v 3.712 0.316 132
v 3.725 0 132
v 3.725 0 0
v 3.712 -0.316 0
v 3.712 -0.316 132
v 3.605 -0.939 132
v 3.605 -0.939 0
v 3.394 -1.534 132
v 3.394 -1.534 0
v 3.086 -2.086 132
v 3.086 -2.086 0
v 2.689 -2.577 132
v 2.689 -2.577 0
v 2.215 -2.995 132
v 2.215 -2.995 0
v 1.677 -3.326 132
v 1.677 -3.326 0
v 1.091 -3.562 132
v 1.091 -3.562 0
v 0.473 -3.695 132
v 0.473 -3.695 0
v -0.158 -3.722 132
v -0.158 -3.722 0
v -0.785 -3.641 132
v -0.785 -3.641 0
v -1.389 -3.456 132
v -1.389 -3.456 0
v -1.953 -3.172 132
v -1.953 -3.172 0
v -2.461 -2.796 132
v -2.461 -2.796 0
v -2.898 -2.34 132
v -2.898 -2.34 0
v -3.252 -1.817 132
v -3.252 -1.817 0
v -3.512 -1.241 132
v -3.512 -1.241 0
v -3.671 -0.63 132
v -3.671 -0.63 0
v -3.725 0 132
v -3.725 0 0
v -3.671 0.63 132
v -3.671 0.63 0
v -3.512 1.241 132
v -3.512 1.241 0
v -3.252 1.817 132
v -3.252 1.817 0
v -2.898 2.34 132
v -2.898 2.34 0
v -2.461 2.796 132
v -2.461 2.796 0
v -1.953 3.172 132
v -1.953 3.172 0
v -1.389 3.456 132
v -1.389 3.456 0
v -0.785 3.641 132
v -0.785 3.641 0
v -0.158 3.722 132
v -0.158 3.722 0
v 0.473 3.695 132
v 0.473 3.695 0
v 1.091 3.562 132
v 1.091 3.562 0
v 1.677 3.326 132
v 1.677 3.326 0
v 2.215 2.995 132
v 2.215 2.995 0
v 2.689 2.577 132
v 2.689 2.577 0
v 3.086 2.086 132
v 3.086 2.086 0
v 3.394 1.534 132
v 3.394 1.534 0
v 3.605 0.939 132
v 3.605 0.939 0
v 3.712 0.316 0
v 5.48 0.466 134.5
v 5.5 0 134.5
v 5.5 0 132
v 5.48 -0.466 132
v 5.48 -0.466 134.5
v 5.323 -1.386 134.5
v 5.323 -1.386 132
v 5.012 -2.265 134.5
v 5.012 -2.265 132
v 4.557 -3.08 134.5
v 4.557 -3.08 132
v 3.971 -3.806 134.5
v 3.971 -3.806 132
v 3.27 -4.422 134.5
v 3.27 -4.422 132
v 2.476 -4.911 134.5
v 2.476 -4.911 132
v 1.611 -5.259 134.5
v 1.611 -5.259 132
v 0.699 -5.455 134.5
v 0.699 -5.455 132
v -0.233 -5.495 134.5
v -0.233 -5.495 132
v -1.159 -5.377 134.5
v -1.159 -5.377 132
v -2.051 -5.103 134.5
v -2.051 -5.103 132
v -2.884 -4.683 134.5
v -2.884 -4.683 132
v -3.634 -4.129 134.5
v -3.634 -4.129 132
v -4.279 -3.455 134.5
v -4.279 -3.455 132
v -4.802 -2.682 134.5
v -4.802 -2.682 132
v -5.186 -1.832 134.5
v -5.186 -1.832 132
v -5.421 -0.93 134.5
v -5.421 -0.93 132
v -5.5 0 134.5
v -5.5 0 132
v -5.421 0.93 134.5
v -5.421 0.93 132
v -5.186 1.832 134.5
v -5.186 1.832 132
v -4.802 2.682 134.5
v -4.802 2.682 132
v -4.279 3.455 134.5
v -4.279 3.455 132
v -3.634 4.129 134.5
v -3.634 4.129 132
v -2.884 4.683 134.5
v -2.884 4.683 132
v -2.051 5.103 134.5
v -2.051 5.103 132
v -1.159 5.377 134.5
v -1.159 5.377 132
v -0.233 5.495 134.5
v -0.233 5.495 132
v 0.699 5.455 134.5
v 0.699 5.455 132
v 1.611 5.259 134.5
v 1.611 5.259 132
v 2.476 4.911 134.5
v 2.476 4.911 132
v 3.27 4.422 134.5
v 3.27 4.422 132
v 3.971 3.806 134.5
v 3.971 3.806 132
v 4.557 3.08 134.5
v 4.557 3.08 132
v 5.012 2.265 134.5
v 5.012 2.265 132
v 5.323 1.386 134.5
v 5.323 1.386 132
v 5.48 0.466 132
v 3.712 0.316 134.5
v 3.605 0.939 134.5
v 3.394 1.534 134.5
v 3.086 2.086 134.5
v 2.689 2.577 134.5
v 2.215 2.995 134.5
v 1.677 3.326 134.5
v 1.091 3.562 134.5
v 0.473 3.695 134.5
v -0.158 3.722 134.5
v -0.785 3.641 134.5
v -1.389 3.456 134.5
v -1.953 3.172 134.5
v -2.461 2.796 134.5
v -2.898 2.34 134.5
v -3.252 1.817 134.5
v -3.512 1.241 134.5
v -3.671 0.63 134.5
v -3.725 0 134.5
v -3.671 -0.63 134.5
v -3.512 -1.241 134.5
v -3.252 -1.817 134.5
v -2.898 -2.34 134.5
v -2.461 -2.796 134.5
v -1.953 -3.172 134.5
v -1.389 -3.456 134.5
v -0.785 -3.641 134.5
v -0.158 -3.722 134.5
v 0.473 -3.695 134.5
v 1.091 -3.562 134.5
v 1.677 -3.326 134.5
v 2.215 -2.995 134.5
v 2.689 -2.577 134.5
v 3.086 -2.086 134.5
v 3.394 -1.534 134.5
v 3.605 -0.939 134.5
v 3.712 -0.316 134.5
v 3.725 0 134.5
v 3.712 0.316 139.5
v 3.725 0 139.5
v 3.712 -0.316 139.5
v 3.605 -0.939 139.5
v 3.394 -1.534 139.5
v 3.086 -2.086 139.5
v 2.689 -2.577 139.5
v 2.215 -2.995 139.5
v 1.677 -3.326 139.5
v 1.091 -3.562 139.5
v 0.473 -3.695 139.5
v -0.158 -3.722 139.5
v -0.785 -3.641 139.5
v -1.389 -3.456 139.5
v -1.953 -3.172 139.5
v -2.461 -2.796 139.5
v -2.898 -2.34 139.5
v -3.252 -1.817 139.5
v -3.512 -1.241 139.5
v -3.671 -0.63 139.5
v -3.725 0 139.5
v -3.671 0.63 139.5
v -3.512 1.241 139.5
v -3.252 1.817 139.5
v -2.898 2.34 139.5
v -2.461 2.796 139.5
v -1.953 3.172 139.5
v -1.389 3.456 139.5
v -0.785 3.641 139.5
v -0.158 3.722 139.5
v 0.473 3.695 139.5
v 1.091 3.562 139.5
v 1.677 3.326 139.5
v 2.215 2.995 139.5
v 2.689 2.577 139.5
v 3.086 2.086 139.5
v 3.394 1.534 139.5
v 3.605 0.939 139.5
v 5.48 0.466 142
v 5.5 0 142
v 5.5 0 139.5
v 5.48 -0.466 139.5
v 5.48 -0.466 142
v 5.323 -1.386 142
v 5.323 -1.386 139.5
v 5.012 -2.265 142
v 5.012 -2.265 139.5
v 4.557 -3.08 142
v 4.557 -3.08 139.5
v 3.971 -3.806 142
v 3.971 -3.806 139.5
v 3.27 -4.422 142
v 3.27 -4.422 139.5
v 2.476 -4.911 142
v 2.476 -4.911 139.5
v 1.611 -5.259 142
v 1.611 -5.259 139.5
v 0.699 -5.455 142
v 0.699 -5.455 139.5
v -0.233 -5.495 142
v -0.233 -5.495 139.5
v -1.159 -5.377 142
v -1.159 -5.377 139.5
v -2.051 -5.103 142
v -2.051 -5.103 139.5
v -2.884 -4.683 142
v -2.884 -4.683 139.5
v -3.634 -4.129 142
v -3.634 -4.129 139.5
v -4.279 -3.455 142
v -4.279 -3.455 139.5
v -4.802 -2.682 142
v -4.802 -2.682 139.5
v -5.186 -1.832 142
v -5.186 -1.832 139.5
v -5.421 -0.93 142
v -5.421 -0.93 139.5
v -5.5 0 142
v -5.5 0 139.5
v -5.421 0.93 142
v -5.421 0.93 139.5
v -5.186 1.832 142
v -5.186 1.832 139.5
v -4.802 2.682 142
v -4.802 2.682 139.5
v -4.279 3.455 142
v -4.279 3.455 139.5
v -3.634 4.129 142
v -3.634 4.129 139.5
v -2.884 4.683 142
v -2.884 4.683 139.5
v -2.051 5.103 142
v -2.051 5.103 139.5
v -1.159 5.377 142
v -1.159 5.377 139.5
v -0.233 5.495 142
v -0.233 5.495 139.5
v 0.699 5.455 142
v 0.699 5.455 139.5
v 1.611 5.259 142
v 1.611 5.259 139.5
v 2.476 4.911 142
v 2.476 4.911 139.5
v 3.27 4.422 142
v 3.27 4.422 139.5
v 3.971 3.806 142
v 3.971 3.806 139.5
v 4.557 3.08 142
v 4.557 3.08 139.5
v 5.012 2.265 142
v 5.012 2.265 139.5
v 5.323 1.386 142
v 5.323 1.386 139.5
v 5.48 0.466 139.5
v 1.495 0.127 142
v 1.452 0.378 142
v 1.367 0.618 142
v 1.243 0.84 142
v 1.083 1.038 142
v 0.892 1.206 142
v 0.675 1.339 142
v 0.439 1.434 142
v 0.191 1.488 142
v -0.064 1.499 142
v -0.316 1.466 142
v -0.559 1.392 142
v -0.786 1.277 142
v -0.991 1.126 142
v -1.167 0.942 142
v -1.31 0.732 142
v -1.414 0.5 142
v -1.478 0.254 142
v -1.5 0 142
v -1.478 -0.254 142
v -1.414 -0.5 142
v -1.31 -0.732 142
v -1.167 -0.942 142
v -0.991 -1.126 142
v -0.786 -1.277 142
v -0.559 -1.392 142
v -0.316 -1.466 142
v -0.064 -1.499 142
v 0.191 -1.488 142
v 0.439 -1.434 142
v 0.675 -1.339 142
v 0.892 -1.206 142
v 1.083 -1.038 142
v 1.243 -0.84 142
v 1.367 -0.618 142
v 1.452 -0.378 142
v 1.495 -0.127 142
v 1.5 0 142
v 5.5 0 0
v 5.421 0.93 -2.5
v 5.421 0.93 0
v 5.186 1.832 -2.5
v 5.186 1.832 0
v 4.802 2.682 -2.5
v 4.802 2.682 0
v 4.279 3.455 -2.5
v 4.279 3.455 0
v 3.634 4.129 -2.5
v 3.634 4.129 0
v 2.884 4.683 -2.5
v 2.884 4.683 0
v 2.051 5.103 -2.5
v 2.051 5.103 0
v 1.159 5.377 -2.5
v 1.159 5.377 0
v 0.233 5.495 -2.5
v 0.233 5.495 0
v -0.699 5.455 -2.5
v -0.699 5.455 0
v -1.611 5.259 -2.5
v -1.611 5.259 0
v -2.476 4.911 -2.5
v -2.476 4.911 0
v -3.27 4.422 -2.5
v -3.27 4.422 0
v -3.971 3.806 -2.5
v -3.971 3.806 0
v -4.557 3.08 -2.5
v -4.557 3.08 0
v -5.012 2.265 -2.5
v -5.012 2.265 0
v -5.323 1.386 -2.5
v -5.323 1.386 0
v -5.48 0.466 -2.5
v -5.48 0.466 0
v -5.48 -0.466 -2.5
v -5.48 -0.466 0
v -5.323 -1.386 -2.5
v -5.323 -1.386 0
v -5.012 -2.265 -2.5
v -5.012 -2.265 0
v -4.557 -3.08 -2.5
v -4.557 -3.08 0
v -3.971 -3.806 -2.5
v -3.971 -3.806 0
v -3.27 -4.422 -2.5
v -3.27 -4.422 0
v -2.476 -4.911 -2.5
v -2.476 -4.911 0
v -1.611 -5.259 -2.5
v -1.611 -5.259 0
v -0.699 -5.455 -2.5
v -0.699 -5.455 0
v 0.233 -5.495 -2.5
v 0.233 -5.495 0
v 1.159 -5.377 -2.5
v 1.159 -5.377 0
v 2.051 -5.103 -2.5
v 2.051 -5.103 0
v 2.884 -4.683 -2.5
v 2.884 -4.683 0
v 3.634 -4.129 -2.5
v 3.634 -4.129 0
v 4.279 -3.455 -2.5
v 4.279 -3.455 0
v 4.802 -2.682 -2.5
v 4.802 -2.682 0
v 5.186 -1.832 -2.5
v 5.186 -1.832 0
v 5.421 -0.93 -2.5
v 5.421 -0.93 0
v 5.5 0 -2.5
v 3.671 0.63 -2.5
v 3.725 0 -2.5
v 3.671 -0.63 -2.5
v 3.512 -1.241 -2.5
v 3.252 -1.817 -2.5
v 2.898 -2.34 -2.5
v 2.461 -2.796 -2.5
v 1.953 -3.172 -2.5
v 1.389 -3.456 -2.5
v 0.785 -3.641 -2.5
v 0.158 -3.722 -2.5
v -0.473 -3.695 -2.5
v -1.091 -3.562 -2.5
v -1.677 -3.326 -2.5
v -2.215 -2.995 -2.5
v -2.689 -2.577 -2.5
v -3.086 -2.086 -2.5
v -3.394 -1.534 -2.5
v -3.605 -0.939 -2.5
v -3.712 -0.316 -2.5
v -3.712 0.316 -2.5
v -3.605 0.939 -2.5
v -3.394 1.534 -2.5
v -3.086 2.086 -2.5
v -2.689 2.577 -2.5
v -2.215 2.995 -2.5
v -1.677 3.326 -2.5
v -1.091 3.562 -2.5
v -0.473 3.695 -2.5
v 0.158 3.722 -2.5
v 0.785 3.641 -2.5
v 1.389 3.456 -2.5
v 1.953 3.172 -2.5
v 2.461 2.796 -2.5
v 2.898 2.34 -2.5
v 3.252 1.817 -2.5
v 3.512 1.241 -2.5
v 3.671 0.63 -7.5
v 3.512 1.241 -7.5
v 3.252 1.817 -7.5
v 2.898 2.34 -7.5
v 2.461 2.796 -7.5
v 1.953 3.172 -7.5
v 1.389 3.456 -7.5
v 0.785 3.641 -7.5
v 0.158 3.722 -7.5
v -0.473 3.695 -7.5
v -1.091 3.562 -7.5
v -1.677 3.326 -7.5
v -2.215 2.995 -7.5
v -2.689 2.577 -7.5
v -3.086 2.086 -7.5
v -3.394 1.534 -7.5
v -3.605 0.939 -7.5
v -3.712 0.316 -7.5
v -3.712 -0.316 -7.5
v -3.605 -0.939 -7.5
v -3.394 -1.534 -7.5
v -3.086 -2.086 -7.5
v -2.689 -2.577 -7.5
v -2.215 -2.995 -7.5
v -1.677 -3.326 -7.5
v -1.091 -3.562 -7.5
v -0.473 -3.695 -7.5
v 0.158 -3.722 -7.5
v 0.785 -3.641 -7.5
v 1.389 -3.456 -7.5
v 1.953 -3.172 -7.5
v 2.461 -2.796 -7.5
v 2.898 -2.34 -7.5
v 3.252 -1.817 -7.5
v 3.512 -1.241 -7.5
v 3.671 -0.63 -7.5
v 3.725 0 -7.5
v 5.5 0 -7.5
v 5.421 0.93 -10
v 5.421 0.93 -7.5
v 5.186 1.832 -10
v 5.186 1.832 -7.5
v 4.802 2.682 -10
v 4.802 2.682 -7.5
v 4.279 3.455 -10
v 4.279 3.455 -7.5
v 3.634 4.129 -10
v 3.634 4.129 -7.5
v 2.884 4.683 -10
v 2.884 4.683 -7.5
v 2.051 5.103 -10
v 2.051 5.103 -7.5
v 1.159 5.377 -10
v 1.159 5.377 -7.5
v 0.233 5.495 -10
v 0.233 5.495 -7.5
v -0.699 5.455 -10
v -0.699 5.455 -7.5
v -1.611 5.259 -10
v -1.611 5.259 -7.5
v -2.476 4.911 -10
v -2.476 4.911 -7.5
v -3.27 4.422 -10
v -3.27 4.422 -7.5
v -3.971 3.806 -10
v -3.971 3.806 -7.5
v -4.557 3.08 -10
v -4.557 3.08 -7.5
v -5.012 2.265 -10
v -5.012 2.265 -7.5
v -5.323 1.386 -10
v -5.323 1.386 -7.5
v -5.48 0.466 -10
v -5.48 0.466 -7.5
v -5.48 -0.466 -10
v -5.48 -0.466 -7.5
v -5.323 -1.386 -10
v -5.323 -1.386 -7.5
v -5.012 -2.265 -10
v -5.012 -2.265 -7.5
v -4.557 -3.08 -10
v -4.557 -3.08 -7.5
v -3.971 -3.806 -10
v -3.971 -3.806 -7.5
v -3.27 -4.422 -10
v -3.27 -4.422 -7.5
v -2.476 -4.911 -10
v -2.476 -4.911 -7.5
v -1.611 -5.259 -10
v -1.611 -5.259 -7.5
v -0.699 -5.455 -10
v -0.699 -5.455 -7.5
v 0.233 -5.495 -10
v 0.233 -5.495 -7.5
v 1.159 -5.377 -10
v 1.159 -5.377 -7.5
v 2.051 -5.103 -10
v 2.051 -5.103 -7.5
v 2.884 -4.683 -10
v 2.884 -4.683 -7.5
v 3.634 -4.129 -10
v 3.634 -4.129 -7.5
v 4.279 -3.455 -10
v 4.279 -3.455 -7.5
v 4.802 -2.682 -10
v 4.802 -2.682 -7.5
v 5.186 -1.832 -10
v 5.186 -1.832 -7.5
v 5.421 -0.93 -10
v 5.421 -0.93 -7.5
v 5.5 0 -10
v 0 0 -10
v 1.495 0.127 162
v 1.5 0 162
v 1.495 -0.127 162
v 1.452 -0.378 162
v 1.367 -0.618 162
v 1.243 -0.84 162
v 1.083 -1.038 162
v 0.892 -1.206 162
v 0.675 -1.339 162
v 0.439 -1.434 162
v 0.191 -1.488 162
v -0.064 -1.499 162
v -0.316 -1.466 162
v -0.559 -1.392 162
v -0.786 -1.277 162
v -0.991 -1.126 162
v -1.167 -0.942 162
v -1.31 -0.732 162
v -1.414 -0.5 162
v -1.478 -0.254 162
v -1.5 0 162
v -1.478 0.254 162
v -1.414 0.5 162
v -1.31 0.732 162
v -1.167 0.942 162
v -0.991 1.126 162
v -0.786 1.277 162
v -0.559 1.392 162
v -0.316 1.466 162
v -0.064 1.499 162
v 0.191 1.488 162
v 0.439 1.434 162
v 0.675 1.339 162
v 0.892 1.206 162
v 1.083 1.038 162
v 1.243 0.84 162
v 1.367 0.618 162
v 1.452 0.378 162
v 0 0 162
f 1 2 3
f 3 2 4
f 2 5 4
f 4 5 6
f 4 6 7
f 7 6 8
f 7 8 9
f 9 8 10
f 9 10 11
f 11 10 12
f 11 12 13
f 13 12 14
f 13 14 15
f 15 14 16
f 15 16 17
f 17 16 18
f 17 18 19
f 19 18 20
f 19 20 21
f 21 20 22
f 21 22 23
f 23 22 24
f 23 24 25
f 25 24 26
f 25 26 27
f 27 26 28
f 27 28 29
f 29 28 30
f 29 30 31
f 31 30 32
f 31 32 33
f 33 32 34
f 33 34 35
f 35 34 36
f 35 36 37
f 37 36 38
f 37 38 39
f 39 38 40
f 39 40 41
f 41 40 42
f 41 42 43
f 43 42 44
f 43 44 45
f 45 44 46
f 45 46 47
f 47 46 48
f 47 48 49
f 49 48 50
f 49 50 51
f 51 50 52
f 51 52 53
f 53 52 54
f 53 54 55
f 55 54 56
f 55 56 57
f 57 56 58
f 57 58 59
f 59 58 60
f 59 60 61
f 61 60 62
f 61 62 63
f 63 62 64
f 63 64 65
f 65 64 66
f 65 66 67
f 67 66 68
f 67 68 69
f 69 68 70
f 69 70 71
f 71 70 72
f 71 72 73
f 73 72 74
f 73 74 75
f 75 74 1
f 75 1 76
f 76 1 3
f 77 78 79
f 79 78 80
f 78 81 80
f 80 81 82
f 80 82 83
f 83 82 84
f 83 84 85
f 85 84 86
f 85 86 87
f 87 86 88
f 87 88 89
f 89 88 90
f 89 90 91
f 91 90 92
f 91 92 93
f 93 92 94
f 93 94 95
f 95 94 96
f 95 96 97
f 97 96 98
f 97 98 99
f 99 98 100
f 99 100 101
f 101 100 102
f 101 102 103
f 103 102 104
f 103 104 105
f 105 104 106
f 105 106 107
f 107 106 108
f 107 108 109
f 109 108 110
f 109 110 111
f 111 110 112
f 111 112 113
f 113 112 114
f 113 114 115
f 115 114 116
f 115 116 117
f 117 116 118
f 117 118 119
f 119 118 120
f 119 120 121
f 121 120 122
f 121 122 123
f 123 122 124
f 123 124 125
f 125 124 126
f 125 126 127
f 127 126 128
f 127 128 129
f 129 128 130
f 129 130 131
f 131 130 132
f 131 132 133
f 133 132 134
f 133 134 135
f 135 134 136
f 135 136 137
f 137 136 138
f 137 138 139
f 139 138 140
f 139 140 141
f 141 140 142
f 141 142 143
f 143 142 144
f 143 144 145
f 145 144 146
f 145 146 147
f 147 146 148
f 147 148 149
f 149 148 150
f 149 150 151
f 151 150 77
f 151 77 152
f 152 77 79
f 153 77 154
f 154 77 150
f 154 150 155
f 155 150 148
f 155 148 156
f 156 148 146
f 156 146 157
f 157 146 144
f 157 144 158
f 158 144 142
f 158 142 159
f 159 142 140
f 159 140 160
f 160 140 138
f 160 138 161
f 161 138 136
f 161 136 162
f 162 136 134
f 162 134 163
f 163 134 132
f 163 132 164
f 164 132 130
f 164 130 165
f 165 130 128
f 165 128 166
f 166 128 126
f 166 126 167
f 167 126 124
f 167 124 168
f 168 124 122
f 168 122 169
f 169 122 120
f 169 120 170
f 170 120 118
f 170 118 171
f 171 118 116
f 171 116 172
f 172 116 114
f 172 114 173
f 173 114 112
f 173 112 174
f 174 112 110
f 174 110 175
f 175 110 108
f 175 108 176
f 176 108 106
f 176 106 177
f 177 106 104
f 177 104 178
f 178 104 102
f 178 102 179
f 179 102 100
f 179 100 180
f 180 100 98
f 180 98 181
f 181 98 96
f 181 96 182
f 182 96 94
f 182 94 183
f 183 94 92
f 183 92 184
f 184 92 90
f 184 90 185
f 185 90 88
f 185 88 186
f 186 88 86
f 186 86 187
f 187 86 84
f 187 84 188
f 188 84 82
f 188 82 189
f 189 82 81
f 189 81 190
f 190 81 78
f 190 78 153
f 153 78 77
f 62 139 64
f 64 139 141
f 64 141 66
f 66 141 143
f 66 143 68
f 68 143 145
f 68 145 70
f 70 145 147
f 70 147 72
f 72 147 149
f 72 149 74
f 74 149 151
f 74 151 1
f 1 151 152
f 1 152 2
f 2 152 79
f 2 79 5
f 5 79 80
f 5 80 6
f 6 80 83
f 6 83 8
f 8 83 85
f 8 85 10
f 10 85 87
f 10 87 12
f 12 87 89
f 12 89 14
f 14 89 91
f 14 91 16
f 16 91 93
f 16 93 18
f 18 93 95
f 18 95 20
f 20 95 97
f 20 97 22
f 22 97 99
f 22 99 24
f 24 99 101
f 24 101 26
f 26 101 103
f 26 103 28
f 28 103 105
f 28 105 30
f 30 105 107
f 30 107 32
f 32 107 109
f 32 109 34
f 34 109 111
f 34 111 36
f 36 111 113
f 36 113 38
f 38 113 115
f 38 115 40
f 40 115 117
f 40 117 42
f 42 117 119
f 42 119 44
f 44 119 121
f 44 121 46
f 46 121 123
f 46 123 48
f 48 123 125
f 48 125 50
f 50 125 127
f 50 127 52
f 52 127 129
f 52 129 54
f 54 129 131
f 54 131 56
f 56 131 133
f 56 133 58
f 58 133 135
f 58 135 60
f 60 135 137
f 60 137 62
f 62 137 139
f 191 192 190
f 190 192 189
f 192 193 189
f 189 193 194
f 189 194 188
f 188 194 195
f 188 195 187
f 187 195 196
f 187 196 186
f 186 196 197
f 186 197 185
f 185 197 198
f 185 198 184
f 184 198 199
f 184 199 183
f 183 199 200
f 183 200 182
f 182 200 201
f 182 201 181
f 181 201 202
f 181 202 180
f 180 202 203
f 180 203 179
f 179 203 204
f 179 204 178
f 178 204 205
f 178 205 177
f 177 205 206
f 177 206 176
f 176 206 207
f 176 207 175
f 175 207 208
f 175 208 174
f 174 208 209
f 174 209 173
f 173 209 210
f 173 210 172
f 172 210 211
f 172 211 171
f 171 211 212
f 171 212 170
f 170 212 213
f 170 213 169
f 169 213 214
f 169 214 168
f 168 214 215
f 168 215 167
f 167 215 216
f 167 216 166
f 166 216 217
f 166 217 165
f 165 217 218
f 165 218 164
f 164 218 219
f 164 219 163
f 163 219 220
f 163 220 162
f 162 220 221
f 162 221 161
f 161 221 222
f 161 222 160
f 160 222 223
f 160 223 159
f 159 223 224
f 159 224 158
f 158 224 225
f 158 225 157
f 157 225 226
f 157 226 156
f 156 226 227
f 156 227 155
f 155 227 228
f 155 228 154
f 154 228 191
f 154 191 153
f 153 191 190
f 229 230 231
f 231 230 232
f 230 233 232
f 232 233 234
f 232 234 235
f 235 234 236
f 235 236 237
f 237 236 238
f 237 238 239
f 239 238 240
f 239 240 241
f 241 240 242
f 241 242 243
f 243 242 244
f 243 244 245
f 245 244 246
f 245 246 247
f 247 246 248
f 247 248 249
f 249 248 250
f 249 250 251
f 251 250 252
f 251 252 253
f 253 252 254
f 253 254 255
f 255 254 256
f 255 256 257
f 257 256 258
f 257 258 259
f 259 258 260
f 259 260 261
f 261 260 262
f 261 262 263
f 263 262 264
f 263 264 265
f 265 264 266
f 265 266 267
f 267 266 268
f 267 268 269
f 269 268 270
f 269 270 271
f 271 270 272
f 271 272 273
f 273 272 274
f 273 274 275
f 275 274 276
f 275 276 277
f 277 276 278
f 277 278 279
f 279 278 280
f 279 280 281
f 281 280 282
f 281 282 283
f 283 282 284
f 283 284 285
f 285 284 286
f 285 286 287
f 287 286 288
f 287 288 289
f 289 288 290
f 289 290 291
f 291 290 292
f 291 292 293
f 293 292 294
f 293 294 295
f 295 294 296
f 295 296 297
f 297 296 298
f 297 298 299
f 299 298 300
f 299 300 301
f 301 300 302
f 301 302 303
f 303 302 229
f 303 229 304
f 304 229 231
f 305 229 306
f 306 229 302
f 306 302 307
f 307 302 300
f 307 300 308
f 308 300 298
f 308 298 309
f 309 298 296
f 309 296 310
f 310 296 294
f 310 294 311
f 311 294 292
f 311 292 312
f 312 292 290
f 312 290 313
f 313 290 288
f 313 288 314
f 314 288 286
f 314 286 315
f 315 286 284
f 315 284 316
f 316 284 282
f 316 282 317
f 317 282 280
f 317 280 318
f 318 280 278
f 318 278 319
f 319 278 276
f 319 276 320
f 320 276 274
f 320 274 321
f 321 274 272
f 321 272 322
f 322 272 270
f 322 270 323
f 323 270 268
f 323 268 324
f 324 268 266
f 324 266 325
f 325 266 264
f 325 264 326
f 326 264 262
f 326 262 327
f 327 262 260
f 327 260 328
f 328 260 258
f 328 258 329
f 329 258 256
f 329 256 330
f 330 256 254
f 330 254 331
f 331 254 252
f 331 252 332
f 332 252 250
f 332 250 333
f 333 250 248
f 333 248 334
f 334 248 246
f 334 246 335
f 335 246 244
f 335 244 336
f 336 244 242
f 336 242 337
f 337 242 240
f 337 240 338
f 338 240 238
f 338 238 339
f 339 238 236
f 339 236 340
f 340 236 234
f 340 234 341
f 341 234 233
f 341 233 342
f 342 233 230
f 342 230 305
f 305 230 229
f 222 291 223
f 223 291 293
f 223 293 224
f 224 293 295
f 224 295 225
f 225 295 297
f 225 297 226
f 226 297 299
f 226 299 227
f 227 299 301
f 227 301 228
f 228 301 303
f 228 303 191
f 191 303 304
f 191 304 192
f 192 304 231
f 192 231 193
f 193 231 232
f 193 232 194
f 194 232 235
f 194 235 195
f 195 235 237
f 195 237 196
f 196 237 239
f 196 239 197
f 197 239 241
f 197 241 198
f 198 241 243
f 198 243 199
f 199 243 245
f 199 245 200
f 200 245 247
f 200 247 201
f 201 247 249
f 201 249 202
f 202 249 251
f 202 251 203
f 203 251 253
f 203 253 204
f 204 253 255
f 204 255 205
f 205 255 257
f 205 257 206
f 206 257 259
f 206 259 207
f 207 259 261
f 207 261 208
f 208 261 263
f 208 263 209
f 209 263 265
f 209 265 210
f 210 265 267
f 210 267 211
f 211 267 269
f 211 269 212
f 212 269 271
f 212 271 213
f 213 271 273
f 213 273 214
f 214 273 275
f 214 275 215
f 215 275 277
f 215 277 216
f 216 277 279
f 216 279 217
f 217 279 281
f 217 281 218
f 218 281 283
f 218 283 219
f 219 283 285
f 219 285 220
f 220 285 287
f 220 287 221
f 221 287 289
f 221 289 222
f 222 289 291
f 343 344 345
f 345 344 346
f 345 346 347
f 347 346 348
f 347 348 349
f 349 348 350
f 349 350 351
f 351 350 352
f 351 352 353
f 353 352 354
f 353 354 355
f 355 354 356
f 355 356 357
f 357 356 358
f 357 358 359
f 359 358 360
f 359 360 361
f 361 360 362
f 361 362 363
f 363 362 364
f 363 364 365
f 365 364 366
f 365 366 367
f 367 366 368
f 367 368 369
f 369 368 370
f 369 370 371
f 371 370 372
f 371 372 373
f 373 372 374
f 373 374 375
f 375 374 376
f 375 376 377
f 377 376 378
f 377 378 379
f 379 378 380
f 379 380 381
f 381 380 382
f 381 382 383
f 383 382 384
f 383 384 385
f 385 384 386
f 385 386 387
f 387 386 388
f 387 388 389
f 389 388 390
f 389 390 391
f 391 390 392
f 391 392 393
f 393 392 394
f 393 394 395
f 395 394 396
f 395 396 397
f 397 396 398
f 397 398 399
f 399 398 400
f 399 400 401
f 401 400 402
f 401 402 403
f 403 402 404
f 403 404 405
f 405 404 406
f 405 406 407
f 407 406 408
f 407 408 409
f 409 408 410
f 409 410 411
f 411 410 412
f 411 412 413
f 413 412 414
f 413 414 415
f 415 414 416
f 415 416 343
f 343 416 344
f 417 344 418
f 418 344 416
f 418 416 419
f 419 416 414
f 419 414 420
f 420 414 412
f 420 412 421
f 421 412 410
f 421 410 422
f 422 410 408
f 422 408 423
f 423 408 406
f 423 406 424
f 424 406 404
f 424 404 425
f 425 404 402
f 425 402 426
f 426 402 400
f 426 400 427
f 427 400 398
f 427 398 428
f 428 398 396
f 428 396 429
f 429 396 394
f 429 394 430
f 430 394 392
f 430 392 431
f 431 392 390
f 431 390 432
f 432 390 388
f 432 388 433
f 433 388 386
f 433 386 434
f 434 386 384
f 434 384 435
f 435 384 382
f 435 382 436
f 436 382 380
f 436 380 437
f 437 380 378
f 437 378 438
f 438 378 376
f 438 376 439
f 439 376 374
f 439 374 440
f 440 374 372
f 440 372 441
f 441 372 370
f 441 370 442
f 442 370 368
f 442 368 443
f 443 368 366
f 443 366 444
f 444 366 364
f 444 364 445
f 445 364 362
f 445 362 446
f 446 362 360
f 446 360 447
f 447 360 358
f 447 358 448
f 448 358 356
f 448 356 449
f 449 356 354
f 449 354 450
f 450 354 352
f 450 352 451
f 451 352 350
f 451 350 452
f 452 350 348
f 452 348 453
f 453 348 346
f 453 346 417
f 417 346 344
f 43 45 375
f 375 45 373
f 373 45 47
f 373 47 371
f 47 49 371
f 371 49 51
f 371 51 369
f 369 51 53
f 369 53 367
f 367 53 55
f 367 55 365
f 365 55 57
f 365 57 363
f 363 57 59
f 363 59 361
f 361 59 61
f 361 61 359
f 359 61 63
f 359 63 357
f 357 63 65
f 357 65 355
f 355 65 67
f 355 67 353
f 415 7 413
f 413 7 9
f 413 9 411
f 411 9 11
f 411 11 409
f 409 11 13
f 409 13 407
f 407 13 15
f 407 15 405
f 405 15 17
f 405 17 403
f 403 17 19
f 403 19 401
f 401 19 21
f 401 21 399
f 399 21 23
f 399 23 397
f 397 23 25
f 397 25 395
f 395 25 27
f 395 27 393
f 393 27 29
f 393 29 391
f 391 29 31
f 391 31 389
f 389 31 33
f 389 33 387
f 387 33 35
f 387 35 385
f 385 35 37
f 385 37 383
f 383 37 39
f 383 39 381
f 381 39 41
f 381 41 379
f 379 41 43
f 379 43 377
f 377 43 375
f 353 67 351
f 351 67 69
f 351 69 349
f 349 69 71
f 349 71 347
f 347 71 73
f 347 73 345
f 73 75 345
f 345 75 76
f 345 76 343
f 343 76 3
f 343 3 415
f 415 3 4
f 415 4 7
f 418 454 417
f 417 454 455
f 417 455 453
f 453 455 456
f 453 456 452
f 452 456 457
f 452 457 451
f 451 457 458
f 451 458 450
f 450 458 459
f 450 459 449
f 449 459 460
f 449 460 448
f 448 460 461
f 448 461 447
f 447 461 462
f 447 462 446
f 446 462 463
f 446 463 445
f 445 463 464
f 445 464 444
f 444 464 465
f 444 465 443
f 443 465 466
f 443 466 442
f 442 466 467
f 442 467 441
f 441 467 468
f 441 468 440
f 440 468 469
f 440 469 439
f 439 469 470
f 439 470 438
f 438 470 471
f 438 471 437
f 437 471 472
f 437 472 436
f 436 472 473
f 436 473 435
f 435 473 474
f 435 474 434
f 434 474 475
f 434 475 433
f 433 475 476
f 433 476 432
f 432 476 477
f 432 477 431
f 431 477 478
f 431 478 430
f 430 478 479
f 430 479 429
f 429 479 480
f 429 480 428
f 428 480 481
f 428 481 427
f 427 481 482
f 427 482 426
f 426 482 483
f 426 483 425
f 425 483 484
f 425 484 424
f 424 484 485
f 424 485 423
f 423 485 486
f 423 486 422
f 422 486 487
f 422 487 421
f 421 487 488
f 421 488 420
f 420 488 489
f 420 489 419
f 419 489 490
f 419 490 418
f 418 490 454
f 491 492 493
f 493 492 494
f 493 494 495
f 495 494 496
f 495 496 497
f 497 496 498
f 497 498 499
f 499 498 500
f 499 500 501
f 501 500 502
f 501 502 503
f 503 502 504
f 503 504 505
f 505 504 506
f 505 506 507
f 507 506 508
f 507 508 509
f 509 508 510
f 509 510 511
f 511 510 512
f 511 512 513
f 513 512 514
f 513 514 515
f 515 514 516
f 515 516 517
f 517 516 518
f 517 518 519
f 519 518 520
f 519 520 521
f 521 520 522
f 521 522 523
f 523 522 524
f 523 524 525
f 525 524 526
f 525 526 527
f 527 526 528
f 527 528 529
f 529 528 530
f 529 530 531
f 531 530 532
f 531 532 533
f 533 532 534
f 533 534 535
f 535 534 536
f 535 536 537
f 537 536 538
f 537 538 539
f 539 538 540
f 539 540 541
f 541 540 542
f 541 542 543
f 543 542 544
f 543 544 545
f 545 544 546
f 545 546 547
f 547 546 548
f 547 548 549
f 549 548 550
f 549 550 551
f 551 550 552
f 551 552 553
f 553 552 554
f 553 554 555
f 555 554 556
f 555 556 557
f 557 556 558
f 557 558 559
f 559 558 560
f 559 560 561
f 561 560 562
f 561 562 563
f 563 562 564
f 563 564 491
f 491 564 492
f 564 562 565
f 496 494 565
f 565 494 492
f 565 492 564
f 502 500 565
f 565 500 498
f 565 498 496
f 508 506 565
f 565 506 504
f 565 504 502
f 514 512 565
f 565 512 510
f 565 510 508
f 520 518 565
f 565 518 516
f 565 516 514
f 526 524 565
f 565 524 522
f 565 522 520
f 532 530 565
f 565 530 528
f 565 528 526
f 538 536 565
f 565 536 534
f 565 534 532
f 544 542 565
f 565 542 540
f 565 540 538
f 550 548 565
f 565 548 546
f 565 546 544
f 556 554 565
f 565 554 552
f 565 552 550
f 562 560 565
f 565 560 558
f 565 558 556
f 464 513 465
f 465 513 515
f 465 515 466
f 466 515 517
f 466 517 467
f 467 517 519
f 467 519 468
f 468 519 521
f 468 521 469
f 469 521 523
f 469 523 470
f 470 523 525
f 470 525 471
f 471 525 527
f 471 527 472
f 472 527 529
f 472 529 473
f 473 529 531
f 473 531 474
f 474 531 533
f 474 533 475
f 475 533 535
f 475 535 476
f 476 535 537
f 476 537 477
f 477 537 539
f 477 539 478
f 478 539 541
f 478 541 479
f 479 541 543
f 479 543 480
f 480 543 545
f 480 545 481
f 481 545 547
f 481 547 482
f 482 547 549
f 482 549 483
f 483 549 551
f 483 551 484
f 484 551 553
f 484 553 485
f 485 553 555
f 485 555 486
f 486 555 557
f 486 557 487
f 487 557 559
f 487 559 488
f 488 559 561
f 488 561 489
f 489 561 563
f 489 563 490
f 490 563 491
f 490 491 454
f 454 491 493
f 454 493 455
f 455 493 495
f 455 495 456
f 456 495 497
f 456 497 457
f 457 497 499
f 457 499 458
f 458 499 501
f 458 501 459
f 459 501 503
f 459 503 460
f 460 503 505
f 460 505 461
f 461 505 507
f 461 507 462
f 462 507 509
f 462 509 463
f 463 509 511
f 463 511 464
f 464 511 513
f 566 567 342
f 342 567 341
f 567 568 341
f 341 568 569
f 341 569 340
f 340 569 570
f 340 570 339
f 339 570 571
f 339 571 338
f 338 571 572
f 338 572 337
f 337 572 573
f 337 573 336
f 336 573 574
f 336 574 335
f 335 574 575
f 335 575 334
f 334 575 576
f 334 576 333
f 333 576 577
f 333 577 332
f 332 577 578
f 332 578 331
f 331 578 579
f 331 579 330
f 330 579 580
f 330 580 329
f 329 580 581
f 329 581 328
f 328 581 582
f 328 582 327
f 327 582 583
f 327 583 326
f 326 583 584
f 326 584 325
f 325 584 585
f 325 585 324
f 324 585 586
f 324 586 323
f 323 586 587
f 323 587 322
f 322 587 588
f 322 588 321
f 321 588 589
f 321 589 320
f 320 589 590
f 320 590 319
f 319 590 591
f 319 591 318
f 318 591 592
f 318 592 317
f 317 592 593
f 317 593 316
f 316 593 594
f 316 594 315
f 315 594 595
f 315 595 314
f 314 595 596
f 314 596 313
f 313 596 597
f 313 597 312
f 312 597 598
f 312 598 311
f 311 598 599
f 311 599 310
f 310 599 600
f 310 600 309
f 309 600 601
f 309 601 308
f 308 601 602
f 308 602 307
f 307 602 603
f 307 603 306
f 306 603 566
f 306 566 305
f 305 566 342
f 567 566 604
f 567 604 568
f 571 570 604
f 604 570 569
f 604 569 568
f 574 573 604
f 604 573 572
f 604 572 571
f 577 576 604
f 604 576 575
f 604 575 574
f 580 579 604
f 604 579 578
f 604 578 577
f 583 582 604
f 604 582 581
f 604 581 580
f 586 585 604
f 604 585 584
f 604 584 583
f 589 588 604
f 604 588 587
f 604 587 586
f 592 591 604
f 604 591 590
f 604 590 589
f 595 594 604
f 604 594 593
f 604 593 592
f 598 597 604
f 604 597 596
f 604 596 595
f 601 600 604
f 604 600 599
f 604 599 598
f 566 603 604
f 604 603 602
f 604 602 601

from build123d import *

# Parameters (mm, degrees)
SKETCH1_R           = 3.725
BOSS_EXTRUDE1_DEPTH = 132
SKETCH3_R           = 5.5
BOSS_EXTRUDE3_DEPTH = 2.5
SKETCH4_R           = 3.725
BOSS_EXTRUDE4_DEPTH = 5
SKETCH5_R           = 5.5
BOSS_EXTRUDE5_DEPTH = 2.5
SKETCH6_R           = 1.5
BOSS_EXTRUDE6_DEPTH = 20


with BuildPart() as part:
    # Sketch1 → Boss-Extrude1 (new body)
    with BuildSketch(Plane.XY):
        Circle(SKETCH1_R)
    extrude(amount=BOSS_EXTRUDE1_DEPTH)

    # Sketch3 → Boss-Extrude3 (add)
    with BuildSketch(Plane.XY.offset(132)):
        Circle(SKETCH3_R)
    boss_extrude3 = extrude(amount=BOSS_EXTRUDE3_DEPTH)

    # Sketch4 → Boss-Extrude4 (add)
    with BuildSketch(Plane.XY.offset(134.5)):
        Circle(SKETCH4_R)
    boss_extrude4 = extrude(amount=BOSS_EXTRUDE4_DEPTH)

    # Sketch5 → Boss-Extrude5 (add)
    with BuildSketch(Plane.XY.offset(139.5)):
        Circle(SKETCH5_R)
    boss_extrude5 = extrude(amount=BOSS_EXTRUDE5_DEPTH)

    # Mirror2: Boss-Extrude3, Boss-Extrude4, Boss-Extrude5 across plane
    add(boss_extrude3.mirror(Plane.XY.offset(66)))
    add(boss_extrude4.mirror(Plane.XY.offset(66)))
    add(boss_extrude5.mirror(Plane.XY.offset(66)))

    # Sketch6 → Boss-Extrude6 (add)
    with BuildSketch(Plane.XY.offset(142)):
        Circle(SKETCH6_R)
    extrude(amount=BOSS_EXTRUDE6_DEPTH)


solid = part.part
